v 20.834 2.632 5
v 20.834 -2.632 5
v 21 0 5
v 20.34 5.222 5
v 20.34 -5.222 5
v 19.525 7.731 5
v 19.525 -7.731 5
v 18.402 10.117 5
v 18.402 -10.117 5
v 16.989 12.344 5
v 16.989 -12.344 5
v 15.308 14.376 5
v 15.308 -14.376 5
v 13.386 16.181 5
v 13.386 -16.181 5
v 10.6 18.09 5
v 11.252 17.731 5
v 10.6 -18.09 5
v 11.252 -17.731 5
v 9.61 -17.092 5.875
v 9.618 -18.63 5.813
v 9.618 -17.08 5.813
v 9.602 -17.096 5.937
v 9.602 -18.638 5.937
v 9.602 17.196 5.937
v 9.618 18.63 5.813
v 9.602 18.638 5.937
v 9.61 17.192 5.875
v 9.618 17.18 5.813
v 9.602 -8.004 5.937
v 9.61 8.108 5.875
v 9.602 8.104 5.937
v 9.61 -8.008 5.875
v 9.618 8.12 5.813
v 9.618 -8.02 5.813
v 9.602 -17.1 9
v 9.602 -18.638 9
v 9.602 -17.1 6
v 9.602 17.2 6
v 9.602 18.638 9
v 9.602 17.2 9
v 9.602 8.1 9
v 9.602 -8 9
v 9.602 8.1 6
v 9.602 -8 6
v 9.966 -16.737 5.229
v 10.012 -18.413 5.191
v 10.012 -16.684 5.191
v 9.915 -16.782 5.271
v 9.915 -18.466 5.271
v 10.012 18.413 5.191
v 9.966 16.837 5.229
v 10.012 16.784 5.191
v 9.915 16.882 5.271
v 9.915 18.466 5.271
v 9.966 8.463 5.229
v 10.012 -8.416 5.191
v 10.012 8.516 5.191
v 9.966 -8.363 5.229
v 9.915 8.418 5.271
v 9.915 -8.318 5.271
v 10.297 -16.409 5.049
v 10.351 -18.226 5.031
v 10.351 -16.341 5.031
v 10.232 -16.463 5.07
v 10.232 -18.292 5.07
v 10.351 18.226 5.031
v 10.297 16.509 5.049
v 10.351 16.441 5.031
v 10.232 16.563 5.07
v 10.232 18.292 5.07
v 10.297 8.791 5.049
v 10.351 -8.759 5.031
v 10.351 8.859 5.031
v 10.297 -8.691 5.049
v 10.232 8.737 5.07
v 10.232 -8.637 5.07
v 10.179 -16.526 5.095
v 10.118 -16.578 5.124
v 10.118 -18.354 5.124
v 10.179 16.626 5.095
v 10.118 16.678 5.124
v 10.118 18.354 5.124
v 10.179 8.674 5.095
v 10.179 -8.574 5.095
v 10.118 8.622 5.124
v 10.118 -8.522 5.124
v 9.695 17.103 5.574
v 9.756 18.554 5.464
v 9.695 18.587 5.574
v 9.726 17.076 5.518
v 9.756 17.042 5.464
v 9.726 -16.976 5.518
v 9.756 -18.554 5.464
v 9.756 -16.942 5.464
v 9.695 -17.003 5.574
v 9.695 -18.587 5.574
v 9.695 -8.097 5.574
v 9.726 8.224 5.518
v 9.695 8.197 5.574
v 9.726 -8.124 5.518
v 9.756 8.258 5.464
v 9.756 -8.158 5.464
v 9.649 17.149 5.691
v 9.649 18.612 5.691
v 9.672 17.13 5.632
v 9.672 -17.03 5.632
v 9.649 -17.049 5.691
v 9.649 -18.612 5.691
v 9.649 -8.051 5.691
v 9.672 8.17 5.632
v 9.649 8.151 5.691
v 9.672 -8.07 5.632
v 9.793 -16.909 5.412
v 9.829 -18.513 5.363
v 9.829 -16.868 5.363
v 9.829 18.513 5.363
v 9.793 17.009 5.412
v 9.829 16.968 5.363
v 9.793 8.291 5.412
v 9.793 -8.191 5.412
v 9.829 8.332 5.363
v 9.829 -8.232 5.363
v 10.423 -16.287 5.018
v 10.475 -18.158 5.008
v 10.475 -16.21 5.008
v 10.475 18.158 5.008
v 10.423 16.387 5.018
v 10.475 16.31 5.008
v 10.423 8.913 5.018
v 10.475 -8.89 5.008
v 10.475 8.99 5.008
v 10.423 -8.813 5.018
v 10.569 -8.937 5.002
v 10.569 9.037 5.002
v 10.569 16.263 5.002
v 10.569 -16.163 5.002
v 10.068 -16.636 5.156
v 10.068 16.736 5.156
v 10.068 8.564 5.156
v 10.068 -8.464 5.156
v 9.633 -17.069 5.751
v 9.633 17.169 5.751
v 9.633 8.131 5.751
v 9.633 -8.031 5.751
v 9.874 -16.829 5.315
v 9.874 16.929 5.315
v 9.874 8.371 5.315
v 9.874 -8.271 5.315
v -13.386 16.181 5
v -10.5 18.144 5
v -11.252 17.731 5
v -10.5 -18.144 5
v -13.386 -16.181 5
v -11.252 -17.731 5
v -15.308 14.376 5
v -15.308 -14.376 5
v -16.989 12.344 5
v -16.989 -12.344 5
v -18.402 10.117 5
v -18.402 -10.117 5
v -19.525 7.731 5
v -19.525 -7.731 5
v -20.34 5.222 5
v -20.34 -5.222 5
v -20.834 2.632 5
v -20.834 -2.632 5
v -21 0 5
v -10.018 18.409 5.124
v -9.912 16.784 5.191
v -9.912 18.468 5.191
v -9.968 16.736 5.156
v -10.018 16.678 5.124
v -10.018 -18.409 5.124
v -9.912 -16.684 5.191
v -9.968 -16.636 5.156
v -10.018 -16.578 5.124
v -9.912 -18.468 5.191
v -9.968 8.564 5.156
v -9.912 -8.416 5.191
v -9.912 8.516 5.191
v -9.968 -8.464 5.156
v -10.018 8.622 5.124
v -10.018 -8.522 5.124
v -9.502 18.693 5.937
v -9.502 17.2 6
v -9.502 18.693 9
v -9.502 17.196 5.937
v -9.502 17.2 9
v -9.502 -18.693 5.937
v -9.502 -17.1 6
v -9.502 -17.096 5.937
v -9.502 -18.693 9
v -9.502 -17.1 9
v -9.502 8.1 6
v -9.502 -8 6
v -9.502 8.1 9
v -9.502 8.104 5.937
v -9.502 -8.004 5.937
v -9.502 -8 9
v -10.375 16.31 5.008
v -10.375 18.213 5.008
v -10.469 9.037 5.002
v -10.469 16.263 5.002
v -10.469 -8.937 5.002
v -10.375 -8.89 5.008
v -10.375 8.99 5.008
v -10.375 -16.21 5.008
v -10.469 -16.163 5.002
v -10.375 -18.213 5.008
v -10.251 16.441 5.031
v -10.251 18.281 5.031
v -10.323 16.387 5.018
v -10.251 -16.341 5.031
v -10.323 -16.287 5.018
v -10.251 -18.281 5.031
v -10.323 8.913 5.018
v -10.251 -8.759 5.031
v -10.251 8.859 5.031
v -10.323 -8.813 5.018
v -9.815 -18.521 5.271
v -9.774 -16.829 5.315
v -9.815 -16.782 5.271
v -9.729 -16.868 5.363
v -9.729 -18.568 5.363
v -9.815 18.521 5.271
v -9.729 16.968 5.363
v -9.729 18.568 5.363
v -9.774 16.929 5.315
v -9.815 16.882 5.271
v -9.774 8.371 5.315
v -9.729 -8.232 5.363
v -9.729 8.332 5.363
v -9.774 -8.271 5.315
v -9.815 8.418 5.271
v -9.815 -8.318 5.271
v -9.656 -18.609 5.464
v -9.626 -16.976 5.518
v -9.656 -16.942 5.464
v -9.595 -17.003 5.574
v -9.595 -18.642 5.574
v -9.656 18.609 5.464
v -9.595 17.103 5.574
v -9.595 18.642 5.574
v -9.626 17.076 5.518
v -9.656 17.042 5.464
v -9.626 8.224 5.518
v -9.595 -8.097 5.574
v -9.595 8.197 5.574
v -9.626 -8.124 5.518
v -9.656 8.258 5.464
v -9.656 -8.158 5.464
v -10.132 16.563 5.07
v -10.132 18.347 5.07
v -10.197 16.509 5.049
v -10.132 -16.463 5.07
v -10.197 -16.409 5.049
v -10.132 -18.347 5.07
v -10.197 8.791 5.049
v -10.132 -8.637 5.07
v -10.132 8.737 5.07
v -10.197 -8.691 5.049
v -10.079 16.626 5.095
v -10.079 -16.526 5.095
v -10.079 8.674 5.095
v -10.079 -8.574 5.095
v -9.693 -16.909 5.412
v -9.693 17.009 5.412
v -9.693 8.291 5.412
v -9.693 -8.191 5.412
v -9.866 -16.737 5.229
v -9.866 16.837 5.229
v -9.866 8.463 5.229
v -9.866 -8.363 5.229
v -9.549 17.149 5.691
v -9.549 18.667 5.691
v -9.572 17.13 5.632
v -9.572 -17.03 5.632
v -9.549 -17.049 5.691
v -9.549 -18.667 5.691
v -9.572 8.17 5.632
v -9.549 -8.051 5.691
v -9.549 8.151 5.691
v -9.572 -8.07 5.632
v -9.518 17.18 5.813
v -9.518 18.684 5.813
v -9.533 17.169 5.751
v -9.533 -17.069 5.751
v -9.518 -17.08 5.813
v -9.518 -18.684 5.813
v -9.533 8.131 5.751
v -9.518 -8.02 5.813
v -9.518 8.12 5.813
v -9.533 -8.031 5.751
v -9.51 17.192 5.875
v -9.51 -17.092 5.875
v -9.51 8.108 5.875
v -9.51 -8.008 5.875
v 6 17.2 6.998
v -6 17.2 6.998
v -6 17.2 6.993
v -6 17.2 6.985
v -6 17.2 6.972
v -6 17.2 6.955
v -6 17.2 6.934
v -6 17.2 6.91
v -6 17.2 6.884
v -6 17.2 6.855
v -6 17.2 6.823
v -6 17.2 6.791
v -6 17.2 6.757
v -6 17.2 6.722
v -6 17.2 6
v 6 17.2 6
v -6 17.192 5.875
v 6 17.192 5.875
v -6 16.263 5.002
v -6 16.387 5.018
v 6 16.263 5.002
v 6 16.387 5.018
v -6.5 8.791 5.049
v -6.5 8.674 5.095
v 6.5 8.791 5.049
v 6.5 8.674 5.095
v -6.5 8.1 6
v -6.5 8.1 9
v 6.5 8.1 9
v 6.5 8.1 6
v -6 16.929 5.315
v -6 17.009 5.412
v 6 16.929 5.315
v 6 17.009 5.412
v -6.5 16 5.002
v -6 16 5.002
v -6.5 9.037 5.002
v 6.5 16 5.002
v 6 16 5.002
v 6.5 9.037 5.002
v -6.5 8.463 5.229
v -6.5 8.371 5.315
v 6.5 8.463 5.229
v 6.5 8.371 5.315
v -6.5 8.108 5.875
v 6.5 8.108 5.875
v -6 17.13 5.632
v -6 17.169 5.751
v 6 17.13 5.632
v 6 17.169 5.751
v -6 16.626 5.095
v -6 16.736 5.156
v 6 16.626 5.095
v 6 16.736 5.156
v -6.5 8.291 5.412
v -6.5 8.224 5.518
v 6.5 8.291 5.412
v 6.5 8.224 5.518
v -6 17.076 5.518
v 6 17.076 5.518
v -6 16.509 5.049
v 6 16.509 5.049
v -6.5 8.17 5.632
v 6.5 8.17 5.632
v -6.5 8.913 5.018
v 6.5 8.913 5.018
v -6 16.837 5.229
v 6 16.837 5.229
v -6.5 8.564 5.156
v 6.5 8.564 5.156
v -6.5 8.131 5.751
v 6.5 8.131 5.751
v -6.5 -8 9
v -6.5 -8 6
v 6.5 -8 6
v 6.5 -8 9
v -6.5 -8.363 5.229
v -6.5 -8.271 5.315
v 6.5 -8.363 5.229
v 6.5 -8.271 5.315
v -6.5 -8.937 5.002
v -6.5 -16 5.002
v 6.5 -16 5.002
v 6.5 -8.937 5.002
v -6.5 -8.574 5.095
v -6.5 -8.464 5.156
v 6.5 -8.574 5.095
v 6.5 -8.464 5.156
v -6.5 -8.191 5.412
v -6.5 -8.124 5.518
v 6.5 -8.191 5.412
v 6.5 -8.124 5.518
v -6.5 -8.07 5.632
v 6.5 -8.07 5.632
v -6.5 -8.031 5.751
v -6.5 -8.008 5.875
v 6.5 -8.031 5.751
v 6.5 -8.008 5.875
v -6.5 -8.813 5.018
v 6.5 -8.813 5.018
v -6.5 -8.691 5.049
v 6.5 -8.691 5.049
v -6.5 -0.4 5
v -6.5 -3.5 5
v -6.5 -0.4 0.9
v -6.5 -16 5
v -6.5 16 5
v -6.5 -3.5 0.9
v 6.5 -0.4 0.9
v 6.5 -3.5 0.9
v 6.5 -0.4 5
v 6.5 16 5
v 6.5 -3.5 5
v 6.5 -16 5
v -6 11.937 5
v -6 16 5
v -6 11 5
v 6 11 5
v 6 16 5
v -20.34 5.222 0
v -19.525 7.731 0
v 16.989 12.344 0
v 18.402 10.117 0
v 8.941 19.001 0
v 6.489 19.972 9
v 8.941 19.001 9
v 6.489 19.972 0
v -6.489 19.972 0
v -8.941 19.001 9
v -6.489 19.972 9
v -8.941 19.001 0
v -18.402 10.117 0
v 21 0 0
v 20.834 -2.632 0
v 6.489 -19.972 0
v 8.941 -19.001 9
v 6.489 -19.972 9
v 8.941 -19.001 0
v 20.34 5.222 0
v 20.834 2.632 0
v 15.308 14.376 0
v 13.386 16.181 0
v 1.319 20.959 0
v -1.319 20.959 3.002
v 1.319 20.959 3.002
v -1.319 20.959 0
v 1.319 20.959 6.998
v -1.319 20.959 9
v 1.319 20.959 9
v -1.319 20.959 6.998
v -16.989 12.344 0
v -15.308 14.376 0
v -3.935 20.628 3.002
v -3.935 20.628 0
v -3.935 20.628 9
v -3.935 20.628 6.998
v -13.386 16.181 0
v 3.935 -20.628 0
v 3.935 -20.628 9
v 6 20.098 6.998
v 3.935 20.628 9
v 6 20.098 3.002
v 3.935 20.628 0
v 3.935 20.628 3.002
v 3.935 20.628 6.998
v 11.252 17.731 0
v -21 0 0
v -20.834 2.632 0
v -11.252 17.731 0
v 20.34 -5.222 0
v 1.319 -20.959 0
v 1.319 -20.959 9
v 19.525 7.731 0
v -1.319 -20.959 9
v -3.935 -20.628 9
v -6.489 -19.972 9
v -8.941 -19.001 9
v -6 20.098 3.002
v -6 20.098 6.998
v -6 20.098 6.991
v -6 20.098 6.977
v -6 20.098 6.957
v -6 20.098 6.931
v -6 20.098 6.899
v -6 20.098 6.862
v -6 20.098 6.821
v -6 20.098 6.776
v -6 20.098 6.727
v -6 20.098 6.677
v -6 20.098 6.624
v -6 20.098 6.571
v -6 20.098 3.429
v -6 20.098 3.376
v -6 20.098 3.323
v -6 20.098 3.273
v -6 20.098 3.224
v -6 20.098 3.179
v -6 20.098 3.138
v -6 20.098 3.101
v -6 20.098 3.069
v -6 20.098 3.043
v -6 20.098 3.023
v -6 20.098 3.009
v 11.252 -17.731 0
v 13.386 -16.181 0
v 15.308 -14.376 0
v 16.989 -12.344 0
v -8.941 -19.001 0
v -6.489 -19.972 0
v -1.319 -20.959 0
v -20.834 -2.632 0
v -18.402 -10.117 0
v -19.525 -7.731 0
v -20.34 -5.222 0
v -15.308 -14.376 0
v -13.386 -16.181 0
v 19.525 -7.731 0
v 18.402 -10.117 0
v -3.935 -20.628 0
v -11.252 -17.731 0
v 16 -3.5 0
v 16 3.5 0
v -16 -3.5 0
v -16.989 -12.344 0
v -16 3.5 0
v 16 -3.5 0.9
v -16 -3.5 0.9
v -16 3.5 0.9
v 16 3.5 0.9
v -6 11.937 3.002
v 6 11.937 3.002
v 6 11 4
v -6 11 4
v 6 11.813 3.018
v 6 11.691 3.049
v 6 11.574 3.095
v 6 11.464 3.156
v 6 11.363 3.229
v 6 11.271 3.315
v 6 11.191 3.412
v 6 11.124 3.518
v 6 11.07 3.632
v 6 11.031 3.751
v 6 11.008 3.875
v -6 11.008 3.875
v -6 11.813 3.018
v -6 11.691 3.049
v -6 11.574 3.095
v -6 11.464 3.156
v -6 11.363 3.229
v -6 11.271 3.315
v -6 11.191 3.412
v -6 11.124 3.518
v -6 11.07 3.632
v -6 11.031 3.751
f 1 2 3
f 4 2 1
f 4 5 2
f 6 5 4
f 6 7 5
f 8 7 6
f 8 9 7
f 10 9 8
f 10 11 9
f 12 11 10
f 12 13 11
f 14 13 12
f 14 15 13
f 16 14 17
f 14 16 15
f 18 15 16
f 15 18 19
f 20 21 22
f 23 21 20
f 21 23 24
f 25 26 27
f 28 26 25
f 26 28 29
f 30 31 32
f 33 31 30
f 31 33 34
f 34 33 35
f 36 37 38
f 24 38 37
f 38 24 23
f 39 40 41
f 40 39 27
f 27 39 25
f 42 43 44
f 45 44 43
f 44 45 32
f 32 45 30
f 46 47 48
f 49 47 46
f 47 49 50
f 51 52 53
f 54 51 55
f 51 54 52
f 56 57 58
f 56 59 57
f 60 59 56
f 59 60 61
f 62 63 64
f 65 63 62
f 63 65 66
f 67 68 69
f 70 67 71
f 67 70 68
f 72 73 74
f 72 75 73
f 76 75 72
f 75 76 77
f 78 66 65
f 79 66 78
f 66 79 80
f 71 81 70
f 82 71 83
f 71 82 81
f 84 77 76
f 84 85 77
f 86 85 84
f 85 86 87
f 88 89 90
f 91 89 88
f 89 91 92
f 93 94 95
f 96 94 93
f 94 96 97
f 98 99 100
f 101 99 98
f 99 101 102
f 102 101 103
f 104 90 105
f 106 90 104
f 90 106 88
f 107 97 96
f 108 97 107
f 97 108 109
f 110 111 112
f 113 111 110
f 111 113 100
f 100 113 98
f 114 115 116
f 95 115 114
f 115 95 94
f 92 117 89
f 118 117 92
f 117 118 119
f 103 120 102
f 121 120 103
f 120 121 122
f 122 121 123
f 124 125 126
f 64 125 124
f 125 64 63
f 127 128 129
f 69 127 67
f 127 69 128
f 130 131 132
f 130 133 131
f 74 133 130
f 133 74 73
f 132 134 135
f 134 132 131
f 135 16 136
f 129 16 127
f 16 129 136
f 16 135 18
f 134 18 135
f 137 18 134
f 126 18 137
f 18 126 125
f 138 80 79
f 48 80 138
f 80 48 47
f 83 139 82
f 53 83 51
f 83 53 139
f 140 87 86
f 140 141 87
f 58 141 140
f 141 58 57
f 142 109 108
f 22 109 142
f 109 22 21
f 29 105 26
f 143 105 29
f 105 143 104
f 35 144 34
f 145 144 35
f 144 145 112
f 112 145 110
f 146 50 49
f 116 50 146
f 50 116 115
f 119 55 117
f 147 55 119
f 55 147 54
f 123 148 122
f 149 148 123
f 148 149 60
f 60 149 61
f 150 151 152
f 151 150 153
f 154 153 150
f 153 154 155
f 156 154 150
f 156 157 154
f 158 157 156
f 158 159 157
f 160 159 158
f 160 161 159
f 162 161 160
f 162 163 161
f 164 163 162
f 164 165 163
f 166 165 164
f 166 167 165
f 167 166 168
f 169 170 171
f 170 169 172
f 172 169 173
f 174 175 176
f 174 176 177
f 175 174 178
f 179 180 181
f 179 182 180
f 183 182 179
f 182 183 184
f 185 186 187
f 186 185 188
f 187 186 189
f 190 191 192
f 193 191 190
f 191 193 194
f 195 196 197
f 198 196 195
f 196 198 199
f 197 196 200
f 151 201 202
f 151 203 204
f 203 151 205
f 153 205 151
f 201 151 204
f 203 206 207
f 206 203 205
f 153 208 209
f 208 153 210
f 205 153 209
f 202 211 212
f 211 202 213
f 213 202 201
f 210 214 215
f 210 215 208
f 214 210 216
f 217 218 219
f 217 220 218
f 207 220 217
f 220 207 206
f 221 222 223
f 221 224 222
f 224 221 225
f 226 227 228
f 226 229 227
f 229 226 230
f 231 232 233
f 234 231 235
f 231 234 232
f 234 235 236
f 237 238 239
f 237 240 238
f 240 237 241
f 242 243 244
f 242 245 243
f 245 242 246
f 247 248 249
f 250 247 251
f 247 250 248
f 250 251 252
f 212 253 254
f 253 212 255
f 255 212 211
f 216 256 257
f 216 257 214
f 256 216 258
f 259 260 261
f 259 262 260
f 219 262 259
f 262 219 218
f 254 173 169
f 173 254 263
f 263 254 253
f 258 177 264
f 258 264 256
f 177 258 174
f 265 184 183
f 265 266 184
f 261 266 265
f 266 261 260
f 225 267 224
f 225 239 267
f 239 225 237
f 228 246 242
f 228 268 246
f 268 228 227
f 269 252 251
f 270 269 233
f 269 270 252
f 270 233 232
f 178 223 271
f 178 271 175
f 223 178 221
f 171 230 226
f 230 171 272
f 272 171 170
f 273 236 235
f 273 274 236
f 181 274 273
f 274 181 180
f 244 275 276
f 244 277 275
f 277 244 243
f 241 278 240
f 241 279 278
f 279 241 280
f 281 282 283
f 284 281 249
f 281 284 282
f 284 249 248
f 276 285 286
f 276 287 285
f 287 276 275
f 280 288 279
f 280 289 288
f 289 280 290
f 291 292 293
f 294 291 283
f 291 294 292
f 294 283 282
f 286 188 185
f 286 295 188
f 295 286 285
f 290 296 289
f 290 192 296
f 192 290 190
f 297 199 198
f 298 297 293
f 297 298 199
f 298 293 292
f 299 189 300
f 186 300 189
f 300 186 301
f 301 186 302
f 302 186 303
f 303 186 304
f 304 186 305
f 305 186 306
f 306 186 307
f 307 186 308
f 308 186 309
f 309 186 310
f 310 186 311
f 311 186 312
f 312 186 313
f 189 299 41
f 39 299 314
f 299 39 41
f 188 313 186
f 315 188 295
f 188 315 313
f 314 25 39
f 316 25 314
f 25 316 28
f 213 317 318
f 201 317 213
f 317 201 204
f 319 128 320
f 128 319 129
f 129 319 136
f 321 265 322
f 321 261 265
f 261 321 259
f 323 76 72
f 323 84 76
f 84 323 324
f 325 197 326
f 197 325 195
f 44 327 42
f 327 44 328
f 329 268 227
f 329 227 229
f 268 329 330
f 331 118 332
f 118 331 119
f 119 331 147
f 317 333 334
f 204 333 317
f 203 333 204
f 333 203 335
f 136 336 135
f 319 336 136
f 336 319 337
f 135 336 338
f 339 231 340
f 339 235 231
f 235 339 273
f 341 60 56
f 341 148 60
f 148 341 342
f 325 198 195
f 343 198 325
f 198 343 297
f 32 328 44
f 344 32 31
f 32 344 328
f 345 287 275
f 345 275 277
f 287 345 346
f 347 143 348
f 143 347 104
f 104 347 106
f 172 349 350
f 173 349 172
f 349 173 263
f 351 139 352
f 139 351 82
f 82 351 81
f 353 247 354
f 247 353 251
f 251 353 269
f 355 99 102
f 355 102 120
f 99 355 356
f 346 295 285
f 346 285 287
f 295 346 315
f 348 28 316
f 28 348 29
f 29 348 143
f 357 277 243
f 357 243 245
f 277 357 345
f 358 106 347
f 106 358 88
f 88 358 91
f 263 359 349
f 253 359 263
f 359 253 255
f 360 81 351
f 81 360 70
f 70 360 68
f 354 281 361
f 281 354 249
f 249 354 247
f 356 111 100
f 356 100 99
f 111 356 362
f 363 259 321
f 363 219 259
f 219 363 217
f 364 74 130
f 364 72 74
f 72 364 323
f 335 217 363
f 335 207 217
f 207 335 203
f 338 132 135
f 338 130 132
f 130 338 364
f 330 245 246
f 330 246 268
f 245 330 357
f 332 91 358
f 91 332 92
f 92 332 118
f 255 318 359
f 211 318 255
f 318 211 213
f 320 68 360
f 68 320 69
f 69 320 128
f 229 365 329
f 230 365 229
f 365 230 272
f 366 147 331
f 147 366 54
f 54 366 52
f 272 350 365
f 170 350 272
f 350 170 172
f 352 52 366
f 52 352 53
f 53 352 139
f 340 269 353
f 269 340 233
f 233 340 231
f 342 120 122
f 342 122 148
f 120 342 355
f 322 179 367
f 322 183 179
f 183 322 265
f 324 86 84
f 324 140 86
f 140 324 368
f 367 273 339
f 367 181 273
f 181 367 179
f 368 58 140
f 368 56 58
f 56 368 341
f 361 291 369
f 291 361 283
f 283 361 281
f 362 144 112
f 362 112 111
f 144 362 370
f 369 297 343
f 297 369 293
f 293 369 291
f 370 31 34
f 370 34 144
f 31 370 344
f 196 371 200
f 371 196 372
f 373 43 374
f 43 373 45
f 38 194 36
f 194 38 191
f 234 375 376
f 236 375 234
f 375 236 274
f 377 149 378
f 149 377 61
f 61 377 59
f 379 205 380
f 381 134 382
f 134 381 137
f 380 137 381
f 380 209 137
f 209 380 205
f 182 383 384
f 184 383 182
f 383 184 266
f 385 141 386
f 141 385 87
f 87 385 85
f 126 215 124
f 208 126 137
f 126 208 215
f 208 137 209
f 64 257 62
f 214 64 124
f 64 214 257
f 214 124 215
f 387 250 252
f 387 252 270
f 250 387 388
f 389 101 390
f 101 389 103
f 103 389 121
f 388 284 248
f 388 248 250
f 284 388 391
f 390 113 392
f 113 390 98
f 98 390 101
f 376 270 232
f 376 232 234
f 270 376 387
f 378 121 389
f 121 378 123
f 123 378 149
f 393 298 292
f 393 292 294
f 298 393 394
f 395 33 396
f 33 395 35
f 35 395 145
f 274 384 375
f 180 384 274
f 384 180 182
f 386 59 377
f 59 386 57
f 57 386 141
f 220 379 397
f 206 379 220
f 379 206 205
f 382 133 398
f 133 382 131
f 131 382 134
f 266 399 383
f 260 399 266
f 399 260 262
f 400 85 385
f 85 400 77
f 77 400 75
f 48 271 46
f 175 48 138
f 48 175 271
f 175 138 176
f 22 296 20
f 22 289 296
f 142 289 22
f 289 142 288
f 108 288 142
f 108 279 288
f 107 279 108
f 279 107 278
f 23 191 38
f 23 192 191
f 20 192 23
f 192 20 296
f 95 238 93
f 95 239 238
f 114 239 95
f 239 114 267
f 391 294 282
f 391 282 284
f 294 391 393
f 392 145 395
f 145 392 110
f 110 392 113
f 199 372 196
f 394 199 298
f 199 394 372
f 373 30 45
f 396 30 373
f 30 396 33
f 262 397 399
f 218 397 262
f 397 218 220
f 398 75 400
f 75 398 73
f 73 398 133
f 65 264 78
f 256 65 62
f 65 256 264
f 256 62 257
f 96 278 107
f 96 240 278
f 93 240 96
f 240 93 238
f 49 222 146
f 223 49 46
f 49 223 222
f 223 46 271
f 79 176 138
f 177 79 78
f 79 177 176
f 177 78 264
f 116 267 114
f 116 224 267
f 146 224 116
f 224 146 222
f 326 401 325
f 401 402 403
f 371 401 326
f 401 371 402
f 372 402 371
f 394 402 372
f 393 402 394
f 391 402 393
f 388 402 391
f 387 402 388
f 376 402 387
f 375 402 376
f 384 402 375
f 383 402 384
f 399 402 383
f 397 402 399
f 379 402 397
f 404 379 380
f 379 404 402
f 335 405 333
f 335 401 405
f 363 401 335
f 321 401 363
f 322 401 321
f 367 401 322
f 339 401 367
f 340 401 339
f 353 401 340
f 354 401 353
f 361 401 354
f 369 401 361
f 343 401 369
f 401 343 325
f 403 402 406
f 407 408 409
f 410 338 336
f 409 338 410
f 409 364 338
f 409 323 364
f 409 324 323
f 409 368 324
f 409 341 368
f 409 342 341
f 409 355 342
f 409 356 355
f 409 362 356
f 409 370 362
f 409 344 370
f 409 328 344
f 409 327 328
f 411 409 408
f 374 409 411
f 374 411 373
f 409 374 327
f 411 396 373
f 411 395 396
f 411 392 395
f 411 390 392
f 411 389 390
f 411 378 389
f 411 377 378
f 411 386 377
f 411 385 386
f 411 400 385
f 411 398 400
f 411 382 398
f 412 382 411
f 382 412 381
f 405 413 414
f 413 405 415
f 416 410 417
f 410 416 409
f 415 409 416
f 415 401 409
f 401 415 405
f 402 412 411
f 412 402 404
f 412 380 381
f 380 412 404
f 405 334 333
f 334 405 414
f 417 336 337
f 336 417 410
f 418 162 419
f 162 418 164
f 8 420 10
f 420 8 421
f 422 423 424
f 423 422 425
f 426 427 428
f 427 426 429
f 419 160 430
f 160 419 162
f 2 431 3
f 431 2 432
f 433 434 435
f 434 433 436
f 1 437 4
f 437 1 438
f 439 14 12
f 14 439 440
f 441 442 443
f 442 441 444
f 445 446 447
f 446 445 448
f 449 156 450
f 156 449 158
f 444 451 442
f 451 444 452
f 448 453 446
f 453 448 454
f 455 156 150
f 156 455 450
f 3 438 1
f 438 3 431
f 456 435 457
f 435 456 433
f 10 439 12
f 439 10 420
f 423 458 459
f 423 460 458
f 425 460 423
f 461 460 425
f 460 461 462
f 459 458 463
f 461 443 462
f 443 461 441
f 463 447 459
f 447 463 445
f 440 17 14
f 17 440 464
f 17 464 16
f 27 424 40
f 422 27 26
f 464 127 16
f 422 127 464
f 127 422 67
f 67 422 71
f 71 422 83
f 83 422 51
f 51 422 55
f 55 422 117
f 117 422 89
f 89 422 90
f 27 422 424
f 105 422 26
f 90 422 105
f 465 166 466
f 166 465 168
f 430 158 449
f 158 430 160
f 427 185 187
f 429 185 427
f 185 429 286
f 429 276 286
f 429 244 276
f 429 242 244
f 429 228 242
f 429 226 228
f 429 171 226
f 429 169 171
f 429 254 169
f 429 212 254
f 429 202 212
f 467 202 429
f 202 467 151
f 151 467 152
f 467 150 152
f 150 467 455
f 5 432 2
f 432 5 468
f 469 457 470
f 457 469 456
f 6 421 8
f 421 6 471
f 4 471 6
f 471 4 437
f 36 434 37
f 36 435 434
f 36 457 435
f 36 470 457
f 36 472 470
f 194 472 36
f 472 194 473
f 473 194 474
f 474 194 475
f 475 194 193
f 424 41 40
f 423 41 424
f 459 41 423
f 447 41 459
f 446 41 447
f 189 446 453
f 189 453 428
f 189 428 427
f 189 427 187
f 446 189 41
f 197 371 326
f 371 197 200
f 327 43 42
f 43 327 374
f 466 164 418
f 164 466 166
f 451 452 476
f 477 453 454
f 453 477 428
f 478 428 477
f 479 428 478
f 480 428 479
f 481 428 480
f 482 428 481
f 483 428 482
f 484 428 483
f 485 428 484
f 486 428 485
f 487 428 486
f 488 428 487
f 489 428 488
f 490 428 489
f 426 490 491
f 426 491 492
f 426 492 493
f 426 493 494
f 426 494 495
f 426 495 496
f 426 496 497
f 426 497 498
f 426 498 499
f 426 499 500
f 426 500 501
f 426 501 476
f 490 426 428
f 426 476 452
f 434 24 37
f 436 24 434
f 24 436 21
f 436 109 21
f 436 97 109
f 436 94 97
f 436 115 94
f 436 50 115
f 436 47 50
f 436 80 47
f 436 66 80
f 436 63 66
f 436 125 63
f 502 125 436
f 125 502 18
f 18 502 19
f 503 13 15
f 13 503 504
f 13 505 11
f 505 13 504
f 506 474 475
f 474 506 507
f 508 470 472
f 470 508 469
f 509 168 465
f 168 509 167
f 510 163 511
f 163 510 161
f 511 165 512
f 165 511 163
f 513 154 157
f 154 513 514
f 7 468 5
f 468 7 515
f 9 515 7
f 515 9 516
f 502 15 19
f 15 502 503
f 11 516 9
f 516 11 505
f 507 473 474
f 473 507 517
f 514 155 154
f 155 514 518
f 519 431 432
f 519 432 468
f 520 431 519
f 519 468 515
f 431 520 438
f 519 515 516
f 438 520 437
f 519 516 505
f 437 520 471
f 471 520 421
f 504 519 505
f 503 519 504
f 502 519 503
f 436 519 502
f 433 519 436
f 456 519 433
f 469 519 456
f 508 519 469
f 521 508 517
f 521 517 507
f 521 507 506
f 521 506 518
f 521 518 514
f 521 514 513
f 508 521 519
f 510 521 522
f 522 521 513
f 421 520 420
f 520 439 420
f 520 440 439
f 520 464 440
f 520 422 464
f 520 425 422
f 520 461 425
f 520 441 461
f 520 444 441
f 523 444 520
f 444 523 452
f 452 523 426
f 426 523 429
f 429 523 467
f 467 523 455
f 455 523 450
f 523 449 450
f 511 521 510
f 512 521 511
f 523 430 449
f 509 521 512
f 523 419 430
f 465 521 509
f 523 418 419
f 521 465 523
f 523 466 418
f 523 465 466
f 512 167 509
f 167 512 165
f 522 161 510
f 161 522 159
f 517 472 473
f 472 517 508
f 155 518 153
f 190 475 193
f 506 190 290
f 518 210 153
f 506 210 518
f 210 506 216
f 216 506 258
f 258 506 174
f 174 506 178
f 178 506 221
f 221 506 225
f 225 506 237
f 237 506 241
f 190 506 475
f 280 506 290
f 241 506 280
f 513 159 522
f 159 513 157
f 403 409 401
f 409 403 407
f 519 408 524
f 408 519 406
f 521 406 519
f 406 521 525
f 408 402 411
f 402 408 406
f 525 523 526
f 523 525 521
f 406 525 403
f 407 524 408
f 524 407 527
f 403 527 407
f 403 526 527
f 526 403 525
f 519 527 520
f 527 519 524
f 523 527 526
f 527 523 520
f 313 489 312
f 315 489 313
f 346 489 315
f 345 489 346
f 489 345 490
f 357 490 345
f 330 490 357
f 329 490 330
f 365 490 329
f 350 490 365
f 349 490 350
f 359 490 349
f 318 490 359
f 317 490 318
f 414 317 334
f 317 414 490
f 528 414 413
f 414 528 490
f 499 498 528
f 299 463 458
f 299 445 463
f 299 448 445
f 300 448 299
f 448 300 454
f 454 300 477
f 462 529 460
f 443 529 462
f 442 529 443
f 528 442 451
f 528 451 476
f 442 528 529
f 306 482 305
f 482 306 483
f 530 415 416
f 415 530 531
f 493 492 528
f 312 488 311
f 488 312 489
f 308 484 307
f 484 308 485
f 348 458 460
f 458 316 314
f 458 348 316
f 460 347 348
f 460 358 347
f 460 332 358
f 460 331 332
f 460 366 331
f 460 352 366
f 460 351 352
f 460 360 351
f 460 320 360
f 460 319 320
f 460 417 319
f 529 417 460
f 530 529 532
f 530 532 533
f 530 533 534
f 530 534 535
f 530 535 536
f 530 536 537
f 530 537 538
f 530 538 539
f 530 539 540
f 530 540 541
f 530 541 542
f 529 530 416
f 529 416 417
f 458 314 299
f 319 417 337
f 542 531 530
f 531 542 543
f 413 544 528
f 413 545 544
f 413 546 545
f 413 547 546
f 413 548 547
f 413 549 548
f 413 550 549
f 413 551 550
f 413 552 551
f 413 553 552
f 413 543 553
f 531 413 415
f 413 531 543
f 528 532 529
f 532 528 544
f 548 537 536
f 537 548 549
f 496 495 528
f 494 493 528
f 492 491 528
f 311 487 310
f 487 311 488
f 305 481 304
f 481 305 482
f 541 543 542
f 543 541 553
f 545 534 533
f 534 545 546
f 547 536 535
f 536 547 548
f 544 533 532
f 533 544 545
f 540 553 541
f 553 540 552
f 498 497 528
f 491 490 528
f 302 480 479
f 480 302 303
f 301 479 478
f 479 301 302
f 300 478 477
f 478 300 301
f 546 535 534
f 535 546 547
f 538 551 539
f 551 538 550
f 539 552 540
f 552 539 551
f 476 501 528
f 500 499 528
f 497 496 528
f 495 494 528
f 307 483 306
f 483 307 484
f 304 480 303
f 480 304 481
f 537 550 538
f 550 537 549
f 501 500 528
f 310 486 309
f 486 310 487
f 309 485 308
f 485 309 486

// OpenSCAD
sigma=0.1;

base_thickness=5;
base_diameter=42;

center_fudge=2;

servo_width=13;
servo_offset=2;
servo_bracket_height=5;
servo_bracket_thickness=3;
servo_edge=4;

wall_height=4;
wall_thickness=3;
wall_width=16;

horn_width=7;
horn_length=32;
horn_depth=1;

cable_manager_width=12;
cable_manager_height=4;
cable_manager_depth=20;
cable_manager_zoff=2;

union()
{
    difference()
    {
        chop=5;

        //Base
        cylinder(d=base_diameter,h=base_thickness+wall_height,$fn=50);
        
        translate([0,0,base_thickness])
        {
            //Cut Center
            translate([-servo_width/2,-base_diameter/2+servo_edge+1,0])
                cube(size=[servo_width,
                    base_diameter-servo_edge*2-center_fudge,
                    wall_height+chop+sigma]);

            //Cut Walls
            translate([0,-base_diameter/2-sigma,0])
            {
                edge_to_out_wall=(base_diameter-servo_width)/2-wall_thickness;
                translate([base_diameter/2-edge_to_out_wall+sigma,0,0])
                    round_cube(size=[edge_to_out_wall+chop+sigma,
                        base_diameter+sigma*2,
                        wall_height+chop+sigma]);
                translate([-base_diameter/2-chop-sigma,0,0])
                    round_cube(size=[edge_to_out_wall+chop+sigma,
                        base_diameter+sigma*2,
                        wall_height+chop+sigma]);
            }
            translate([-base_diameter/2,0,0])
            {
                cube_width=(base_diameter-wall_width)/2+sigma;
                translate([0,wall_width/2+sigma,0])
                    round_cube(size=[base_diameter,
                        cube_width-servo_edge,
                        wall_height+chop+sigma],
                        rot_z=true);
                translate([0,-base_diameter/2-sigma+servo_edge,0])
                    round_cube(size=[base_diameter,
                        cube_width-servo_edge,
                        wall_height+chop+sigma],
                        rot_z=true);
            }
        }

        //Cut Servo Hole
        translate([-servo_width/2,
            -servo_bracket_thickness/2-servo_offset,
            base_thickness-servo_bracket_height+sigma])
            cube(size=[servo_width,servo_bracket_thickness+sigma,servo_bracket_height]);

        //Servo Horn
        translate([-horn_length/2,-horn_width/2,-sigma])
            cube(size=[horn_length,horn_width,horn_depth]);
        
        //Cut Cable Management Hole
        translate([-cable_manager_width/2,
            base_diameter/2-cable_manager_depth/2,
            base_thickness-cable_manager_zoff])
            round_cube([cable_manager_width,cable_manager_depth,cable_manager_height],rot_z=true);
    }
}

module round_cube(size,radius=1,rot_z=false)
{
	$fn=50;
    
    if(rot_z)
    {
        x=size[1]-radius*2;
        y=size[2]-radius*2;
        z=size[0]-radius;

        translate([0,radius,radius])
            rotate([90,0,90])
                minkowski()
                {
                    cube(size=[x,y,z]);
                    cylinder(r=radius);
                }
    }
    else
    {
        x=size[2]-radius*2;
        y=size[0]-radius*2;
        z=size[1]-radius;

        translate([radius,z+radius,x+radius])
            rotate([90,90,0])
                minkowski()
                {
                    cube(size=[x,y,z]);
                    cylinder(r=radius);
                }
    }
}
